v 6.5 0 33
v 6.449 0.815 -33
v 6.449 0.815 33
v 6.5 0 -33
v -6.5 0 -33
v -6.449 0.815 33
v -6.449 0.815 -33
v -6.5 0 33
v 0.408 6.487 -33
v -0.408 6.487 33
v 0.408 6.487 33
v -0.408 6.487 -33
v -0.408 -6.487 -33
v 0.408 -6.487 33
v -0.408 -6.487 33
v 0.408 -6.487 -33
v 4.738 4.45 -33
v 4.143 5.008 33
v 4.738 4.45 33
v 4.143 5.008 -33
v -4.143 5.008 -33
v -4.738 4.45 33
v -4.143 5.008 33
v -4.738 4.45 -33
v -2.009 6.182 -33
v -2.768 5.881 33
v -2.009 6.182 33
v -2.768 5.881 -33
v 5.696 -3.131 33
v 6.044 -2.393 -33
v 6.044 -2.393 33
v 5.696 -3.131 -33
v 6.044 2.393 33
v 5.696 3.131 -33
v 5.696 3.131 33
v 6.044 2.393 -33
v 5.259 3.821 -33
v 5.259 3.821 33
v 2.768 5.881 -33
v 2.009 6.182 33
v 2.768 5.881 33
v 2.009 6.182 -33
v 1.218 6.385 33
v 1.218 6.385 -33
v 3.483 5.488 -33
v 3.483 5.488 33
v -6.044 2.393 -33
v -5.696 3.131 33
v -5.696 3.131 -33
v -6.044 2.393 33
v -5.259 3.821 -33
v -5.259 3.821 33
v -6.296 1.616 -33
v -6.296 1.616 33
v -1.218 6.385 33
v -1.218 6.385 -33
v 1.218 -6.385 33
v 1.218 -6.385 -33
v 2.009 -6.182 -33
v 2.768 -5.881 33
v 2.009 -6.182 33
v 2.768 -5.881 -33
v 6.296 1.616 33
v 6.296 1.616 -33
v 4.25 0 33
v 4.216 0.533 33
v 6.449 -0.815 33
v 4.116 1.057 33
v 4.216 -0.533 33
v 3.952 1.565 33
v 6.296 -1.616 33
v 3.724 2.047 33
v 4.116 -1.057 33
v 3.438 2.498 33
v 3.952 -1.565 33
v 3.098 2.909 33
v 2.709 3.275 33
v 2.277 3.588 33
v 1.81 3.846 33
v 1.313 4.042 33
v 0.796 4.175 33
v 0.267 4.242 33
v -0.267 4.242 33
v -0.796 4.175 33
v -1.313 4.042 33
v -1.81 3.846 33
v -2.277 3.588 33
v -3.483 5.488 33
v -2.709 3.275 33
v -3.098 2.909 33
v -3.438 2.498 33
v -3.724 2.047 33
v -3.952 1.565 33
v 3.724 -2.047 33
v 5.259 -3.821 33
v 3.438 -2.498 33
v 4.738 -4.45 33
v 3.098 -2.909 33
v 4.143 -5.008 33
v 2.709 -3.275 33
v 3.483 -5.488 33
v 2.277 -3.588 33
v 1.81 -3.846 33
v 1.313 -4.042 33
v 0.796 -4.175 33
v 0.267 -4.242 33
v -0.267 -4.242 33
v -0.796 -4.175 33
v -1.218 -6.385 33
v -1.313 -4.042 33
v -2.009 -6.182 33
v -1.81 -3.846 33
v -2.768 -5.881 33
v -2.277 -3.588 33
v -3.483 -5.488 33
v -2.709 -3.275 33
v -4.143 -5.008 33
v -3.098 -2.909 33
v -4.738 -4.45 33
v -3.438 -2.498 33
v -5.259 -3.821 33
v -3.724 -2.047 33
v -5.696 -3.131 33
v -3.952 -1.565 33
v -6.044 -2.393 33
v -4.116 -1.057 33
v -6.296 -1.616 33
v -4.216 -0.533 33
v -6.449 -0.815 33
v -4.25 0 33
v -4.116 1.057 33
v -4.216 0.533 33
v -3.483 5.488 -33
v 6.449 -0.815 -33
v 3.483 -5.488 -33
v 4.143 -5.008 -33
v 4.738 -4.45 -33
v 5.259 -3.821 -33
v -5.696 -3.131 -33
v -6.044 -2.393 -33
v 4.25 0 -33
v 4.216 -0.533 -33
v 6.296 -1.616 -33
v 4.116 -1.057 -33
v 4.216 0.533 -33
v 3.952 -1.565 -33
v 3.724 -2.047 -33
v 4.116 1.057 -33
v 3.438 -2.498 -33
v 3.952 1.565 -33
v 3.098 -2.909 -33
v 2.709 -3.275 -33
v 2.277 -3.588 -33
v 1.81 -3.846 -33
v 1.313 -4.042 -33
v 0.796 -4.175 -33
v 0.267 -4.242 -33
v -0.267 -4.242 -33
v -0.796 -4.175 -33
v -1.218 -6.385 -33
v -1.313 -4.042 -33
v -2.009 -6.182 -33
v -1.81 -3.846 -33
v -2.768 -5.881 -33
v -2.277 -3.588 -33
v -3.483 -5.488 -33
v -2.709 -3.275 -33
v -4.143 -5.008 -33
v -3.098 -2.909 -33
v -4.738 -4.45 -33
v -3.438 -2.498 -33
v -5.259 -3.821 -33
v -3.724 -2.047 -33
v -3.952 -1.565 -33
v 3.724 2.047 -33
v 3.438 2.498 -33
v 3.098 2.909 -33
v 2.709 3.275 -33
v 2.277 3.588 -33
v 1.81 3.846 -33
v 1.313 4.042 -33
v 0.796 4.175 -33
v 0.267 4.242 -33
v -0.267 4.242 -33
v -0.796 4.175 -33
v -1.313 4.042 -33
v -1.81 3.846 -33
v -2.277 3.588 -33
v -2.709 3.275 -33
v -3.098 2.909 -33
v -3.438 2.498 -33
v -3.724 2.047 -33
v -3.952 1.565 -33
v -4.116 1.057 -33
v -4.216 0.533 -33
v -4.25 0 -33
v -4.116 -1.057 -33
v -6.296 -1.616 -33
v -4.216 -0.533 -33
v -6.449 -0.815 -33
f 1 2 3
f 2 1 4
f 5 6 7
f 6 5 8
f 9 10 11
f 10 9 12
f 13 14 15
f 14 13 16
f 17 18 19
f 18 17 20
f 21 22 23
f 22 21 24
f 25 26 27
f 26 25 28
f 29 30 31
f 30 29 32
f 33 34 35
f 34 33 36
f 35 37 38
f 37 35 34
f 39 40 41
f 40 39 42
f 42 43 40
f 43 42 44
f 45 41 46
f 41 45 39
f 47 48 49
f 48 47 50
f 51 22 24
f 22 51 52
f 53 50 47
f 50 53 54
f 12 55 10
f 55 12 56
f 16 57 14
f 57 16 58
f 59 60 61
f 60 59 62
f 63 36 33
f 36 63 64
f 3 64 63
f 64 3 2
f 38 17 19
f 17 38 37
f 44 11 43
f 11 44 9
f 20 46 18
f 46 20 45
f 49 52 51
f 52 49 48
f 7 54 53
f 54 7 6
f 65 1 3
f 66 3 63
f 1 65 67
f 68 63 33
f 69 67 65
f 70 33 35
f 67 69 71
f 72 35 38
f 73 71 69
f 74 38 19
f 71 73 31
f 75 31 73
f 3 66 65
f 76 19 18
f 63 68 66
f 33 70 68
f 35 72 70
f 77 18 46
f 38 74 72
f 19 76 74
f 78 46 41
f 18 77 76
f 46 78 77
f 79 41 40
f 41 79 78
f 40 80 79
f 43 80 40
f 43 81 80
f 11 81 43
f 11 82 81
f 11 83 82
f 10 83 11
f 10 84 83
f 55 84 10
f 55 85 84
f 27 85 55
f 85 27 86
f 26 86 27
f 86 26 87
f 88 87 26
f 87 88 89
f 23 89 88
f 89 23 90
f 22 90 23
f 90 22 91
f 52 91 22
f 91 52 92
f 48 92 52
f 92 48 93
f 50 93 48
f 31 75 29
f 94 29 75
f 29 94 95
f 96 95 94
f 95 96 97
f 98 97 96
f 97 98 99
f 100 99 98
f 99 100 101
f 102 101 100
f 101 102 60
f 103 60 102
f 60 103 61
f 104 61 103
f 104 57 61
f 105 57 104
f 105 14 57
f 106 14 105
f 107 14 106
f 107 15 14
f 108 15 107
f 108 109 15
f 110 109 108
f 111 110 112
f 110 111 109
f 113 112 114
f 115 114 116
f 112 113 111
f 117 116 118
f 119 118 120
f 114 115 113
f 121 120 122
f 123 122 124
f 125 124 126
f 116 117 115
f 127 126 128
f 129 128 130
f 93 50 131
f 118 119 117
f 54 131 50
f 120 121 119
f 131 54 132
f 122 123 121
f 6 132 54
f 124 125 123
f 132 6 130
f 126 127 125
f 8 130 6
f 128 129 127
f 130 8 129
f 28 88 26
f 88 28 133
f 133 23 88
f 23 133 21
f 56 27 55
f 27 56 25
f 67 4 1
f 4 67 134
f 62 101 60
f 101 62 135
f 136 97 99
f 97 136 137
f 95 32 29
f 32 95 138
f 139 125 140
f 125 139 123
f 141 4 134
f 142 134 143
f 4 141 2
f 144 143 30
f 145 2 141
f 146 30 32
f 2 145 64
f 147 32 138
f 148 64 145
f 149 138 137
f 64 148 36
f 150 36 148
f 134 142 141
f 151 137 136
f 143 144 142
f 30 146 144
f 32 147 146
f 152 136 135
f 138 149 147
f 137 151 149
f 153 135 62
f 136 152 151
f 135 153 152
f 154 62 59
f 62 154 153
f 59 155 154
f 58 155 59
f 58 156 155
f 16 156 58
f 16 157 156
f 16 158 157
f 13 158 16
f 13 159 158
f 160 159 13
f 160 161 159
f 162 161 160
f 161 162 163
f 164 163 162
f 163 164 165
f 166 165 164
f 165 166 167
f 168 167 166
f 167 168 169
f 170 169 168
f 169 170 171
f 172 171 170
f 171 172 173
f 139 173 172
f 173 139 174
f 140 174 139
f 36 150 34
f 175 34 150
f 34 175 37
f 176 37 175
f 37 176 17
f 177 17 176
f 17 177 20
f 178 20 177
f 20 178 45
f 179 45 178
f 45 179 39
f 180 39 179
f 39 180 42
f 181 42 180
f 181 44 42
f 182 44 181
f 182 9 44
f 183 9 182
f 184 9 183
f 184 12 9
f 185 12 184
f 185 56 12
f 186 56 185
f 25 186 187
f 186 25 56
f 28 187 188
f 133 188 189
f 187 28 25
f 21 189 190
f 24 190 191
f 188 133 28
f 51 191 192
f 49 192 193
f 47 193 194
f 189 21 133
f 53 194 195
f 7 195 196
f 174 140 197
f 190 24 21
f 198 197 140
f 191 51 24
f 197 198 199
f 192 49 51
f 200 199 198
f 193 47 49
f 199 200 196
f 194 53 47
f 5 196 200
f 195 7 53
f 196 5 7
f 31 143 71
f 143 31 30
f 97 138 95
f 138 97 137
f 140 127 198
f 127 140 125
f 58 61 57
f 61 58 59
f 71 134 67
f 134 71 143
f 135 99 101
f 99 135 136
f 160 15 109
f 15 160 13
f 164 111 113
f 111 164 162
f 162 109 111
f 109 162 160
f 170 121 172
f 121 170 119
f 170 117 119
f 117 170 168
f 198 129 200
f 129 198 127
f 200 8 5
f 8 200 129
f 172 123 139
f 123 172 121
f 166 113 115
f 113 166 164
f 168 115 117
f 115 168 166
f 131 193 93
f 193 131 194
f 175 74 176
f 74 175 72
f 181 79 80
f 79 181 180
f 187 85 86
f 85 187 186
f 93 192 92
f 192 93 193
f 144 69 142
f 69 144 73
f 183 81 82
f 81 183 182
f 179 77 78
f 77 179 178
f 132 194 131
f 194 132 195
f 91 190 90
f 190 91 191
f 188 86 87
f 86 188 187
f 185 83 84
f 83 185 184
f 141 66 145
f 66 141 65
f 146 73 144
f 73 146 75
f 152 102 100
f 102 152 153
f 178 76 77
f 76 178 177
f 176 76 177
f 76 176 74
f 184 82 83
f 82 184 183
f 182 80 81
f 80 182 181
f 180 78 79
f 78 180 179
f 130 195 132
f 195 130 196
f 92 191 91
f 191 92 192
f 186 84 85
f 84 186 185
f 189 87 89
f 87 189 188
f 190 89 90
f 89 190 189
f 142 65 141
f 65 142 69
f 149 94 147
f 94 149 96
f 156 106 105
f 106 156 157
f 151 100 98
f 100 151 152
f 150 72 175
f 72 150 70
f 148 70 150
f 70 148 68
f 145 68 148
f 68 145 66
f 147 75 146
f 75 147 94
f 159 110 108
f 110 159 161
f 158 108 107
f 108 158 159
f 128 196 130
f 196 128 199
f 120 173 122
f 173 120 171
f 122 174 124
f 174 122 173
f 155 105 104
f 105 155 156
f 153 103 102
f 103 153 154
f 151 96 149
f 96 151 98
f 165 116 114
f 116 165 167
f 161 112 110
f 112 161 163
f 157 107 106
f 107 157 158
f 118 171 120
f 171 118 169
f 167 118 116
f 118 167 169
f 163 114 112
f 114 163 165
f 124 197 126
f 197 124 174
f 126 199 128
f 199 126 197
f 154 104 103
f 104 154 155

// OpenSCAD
$fn = 50;


difference() {
	union() {
		translate(v = [0, 0, -33.0000000000]) {
			cylinder(h = 66, r = 6.5000000000);
		}
	}
	union() {
		translate(v = [0, 0, -100.0000000000]) {
			cylinder(h = 200, r = 4.2500000000);
		}
	}
}
